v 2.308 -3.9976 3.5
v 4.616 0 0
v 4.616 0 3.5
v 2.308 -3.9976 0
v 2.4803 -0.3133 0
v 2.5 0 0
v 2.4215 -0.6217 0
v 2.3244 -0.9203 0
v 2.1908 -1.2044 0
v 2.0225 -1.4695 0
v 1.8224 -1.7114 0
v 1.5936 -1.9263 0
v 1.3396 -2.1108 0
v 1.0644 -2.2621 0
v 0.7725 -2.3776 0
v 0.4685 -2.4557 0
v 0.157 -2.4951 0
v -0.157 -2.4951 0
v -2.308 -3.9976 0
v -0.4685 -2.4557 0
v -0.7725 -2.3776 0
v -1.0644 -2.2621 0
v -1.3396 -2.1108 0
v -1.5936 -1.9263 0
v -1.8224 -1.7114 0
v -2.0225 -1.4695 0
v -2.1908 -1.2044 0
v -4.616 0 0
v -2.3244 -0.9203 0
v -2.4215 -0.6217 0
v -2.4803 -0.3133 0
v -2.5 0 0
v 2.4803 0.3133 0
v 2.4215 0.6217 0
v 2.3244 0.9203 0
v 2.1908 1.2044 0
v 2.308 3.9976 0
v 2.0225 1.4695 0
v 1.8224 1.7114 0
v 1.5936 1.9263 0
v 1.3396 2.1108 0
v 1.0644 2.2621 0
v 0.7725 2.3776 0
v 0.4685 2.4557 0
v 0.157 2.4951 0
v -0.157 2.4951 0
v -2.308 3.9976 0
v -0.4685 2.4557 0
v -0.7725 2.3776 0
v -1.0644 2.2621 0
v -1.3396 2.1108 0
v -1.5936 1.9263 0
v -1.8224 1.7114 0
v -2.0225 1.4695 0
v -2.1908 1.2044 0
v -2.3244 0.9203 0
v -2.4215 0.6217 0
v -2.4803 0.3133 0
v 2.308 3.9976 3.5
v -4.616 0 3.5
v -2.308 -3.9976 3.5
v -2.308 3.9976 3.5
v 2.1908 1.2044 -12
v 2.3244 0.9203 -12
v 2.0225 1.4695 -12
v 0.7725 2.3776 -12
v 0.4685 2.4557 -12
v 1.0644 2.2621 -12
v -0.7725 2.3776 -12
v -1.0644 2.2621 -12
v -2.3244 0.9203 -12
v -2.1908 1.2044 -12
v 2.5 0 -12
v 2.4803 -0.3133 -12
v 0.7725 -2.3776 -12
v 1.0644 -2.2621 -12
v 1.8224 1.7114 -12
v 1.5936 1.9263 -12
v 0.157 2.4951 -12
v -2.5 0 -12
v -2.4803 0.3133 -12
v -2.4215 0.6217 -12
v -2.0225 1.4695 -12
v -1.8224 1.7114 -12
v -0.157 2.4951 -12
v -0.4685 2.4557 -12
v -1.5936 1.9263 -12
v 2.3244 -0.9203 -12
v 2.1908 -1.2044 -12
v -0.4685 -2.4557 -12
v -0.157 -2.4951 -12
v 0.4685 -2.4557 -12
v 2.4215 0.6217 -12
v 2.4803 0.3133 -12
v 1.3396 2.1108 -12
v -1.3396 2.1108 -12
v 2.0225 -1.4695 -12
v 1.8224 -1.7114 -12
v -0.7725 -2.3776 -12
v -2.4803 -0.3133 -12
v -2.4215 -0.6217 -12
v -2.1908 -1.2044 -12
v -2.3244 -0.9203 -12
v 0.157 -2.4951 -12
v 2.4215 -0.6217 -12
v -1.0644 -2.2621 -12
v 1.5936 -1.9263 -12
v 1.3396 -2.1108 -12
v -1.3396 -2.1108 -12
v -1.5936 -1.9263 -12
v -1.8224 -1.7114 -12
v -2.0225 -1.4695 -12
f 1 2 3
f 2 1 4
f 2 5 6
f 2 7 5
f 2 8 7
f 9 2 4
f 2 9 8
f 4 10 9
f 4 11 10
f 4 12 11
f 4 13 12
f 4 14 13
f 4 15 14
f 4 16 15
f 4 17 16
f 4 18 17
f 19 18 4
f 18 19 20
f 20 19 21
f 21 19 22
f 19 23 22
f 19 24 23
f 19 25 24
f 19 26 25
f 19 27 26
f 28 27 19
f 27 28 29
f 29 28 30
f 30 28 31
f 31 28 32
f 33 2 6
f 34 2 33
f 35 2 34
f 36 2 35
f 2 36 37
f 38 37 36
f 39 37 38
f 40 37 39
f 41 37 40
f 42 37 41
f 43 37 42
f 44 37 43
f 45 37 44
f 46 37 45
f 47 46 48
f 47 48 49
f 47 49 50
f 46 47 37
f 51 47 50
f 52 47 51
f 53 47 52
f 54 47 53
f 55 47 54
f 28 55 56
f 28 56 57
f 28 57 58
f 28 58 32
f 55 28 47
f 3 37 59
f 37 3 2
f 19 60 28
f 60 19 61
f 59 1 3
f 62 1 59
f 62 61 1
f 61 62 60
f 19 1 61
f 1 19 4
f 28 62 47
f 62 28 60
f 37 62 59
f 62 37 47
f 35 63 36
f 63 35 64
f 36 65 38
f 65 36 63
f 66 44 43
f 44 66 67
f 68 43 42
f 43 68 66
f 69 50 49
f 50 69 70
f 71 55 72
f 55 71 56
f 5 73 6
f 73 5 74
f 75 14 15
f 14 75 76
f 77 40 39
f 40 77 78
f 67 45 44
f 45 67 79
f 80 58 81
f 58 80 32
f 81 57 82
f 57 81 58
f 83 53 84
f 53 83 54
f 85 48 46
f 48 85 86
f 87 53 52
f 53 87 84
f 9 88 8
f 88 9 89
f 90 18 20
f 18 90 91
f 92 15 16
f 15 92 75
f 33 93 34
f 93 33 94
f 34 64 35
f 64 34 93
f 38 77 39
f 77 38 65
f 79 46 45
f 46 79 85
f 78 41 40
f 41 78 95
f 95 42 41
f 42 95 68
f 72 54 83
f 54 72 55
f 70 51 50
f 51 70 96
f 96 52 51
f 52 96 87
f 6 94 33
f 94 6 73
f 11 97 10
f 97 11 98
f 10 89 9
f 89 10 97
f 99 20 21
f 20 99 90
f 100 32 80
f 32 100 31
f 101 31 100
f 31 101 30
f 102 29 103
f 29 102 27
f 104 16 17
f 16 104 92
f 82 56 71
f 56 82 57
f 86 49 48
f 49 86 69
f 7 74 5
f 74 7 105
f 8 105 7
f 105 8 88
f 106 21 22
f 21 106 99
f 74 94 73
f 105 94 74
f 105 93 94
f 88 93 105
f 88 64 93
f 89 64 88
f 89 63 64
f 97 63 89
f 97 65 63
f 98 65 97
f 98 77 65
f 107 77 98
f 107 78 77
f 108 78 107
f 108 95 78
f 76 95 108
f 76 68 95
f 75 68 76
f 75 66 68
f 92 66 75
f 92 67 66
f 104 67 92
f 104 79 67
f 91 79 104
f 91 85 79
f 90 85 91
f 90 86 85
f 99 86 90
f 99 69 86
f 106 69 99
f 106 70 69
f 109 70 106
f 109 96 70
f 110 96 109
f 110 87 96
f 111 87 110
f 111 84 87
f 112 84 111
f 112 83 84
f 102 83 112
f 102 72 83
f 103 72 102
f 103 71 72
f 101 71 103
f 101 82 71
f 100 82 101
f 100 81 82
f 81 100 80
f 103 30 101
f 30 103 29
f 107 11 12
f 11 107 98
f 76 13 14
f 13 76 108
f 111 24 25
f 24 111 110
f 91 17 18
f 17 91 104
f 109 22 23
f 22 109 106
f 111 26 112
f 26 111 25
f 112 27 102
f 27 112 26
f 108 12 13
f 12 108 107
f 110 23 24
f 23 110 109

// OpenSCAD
$fn = 50;


difference() {
	union() {
		translate(v = [0, 0, 0]) {
			rotate(a = [0, 0, 0]) {
				translate(v = [0, 0, 0]) {
					rotate(a = [0, 0, 0]) {
						linear_extrude(height = 3.5000000000) {
							polygon(points = [[4.6160000000, 0.0000000000], [2.3080000000, 3.9975732639], [-2.3080000000, 3.9975732639], [-4.6160000000, 0.0000000000], [-2.3080000000, -3.9975732639], [2.3080000000, -3.9975732639]]);
						}
					}
				}
			}
		}
		translate(v = [0, 0, -12]) {
			rotate(a = [0, 0, 0]) {
				cylinder(h = 12, r = 2.5000000000);
			}
		}
	}
	union();
}
